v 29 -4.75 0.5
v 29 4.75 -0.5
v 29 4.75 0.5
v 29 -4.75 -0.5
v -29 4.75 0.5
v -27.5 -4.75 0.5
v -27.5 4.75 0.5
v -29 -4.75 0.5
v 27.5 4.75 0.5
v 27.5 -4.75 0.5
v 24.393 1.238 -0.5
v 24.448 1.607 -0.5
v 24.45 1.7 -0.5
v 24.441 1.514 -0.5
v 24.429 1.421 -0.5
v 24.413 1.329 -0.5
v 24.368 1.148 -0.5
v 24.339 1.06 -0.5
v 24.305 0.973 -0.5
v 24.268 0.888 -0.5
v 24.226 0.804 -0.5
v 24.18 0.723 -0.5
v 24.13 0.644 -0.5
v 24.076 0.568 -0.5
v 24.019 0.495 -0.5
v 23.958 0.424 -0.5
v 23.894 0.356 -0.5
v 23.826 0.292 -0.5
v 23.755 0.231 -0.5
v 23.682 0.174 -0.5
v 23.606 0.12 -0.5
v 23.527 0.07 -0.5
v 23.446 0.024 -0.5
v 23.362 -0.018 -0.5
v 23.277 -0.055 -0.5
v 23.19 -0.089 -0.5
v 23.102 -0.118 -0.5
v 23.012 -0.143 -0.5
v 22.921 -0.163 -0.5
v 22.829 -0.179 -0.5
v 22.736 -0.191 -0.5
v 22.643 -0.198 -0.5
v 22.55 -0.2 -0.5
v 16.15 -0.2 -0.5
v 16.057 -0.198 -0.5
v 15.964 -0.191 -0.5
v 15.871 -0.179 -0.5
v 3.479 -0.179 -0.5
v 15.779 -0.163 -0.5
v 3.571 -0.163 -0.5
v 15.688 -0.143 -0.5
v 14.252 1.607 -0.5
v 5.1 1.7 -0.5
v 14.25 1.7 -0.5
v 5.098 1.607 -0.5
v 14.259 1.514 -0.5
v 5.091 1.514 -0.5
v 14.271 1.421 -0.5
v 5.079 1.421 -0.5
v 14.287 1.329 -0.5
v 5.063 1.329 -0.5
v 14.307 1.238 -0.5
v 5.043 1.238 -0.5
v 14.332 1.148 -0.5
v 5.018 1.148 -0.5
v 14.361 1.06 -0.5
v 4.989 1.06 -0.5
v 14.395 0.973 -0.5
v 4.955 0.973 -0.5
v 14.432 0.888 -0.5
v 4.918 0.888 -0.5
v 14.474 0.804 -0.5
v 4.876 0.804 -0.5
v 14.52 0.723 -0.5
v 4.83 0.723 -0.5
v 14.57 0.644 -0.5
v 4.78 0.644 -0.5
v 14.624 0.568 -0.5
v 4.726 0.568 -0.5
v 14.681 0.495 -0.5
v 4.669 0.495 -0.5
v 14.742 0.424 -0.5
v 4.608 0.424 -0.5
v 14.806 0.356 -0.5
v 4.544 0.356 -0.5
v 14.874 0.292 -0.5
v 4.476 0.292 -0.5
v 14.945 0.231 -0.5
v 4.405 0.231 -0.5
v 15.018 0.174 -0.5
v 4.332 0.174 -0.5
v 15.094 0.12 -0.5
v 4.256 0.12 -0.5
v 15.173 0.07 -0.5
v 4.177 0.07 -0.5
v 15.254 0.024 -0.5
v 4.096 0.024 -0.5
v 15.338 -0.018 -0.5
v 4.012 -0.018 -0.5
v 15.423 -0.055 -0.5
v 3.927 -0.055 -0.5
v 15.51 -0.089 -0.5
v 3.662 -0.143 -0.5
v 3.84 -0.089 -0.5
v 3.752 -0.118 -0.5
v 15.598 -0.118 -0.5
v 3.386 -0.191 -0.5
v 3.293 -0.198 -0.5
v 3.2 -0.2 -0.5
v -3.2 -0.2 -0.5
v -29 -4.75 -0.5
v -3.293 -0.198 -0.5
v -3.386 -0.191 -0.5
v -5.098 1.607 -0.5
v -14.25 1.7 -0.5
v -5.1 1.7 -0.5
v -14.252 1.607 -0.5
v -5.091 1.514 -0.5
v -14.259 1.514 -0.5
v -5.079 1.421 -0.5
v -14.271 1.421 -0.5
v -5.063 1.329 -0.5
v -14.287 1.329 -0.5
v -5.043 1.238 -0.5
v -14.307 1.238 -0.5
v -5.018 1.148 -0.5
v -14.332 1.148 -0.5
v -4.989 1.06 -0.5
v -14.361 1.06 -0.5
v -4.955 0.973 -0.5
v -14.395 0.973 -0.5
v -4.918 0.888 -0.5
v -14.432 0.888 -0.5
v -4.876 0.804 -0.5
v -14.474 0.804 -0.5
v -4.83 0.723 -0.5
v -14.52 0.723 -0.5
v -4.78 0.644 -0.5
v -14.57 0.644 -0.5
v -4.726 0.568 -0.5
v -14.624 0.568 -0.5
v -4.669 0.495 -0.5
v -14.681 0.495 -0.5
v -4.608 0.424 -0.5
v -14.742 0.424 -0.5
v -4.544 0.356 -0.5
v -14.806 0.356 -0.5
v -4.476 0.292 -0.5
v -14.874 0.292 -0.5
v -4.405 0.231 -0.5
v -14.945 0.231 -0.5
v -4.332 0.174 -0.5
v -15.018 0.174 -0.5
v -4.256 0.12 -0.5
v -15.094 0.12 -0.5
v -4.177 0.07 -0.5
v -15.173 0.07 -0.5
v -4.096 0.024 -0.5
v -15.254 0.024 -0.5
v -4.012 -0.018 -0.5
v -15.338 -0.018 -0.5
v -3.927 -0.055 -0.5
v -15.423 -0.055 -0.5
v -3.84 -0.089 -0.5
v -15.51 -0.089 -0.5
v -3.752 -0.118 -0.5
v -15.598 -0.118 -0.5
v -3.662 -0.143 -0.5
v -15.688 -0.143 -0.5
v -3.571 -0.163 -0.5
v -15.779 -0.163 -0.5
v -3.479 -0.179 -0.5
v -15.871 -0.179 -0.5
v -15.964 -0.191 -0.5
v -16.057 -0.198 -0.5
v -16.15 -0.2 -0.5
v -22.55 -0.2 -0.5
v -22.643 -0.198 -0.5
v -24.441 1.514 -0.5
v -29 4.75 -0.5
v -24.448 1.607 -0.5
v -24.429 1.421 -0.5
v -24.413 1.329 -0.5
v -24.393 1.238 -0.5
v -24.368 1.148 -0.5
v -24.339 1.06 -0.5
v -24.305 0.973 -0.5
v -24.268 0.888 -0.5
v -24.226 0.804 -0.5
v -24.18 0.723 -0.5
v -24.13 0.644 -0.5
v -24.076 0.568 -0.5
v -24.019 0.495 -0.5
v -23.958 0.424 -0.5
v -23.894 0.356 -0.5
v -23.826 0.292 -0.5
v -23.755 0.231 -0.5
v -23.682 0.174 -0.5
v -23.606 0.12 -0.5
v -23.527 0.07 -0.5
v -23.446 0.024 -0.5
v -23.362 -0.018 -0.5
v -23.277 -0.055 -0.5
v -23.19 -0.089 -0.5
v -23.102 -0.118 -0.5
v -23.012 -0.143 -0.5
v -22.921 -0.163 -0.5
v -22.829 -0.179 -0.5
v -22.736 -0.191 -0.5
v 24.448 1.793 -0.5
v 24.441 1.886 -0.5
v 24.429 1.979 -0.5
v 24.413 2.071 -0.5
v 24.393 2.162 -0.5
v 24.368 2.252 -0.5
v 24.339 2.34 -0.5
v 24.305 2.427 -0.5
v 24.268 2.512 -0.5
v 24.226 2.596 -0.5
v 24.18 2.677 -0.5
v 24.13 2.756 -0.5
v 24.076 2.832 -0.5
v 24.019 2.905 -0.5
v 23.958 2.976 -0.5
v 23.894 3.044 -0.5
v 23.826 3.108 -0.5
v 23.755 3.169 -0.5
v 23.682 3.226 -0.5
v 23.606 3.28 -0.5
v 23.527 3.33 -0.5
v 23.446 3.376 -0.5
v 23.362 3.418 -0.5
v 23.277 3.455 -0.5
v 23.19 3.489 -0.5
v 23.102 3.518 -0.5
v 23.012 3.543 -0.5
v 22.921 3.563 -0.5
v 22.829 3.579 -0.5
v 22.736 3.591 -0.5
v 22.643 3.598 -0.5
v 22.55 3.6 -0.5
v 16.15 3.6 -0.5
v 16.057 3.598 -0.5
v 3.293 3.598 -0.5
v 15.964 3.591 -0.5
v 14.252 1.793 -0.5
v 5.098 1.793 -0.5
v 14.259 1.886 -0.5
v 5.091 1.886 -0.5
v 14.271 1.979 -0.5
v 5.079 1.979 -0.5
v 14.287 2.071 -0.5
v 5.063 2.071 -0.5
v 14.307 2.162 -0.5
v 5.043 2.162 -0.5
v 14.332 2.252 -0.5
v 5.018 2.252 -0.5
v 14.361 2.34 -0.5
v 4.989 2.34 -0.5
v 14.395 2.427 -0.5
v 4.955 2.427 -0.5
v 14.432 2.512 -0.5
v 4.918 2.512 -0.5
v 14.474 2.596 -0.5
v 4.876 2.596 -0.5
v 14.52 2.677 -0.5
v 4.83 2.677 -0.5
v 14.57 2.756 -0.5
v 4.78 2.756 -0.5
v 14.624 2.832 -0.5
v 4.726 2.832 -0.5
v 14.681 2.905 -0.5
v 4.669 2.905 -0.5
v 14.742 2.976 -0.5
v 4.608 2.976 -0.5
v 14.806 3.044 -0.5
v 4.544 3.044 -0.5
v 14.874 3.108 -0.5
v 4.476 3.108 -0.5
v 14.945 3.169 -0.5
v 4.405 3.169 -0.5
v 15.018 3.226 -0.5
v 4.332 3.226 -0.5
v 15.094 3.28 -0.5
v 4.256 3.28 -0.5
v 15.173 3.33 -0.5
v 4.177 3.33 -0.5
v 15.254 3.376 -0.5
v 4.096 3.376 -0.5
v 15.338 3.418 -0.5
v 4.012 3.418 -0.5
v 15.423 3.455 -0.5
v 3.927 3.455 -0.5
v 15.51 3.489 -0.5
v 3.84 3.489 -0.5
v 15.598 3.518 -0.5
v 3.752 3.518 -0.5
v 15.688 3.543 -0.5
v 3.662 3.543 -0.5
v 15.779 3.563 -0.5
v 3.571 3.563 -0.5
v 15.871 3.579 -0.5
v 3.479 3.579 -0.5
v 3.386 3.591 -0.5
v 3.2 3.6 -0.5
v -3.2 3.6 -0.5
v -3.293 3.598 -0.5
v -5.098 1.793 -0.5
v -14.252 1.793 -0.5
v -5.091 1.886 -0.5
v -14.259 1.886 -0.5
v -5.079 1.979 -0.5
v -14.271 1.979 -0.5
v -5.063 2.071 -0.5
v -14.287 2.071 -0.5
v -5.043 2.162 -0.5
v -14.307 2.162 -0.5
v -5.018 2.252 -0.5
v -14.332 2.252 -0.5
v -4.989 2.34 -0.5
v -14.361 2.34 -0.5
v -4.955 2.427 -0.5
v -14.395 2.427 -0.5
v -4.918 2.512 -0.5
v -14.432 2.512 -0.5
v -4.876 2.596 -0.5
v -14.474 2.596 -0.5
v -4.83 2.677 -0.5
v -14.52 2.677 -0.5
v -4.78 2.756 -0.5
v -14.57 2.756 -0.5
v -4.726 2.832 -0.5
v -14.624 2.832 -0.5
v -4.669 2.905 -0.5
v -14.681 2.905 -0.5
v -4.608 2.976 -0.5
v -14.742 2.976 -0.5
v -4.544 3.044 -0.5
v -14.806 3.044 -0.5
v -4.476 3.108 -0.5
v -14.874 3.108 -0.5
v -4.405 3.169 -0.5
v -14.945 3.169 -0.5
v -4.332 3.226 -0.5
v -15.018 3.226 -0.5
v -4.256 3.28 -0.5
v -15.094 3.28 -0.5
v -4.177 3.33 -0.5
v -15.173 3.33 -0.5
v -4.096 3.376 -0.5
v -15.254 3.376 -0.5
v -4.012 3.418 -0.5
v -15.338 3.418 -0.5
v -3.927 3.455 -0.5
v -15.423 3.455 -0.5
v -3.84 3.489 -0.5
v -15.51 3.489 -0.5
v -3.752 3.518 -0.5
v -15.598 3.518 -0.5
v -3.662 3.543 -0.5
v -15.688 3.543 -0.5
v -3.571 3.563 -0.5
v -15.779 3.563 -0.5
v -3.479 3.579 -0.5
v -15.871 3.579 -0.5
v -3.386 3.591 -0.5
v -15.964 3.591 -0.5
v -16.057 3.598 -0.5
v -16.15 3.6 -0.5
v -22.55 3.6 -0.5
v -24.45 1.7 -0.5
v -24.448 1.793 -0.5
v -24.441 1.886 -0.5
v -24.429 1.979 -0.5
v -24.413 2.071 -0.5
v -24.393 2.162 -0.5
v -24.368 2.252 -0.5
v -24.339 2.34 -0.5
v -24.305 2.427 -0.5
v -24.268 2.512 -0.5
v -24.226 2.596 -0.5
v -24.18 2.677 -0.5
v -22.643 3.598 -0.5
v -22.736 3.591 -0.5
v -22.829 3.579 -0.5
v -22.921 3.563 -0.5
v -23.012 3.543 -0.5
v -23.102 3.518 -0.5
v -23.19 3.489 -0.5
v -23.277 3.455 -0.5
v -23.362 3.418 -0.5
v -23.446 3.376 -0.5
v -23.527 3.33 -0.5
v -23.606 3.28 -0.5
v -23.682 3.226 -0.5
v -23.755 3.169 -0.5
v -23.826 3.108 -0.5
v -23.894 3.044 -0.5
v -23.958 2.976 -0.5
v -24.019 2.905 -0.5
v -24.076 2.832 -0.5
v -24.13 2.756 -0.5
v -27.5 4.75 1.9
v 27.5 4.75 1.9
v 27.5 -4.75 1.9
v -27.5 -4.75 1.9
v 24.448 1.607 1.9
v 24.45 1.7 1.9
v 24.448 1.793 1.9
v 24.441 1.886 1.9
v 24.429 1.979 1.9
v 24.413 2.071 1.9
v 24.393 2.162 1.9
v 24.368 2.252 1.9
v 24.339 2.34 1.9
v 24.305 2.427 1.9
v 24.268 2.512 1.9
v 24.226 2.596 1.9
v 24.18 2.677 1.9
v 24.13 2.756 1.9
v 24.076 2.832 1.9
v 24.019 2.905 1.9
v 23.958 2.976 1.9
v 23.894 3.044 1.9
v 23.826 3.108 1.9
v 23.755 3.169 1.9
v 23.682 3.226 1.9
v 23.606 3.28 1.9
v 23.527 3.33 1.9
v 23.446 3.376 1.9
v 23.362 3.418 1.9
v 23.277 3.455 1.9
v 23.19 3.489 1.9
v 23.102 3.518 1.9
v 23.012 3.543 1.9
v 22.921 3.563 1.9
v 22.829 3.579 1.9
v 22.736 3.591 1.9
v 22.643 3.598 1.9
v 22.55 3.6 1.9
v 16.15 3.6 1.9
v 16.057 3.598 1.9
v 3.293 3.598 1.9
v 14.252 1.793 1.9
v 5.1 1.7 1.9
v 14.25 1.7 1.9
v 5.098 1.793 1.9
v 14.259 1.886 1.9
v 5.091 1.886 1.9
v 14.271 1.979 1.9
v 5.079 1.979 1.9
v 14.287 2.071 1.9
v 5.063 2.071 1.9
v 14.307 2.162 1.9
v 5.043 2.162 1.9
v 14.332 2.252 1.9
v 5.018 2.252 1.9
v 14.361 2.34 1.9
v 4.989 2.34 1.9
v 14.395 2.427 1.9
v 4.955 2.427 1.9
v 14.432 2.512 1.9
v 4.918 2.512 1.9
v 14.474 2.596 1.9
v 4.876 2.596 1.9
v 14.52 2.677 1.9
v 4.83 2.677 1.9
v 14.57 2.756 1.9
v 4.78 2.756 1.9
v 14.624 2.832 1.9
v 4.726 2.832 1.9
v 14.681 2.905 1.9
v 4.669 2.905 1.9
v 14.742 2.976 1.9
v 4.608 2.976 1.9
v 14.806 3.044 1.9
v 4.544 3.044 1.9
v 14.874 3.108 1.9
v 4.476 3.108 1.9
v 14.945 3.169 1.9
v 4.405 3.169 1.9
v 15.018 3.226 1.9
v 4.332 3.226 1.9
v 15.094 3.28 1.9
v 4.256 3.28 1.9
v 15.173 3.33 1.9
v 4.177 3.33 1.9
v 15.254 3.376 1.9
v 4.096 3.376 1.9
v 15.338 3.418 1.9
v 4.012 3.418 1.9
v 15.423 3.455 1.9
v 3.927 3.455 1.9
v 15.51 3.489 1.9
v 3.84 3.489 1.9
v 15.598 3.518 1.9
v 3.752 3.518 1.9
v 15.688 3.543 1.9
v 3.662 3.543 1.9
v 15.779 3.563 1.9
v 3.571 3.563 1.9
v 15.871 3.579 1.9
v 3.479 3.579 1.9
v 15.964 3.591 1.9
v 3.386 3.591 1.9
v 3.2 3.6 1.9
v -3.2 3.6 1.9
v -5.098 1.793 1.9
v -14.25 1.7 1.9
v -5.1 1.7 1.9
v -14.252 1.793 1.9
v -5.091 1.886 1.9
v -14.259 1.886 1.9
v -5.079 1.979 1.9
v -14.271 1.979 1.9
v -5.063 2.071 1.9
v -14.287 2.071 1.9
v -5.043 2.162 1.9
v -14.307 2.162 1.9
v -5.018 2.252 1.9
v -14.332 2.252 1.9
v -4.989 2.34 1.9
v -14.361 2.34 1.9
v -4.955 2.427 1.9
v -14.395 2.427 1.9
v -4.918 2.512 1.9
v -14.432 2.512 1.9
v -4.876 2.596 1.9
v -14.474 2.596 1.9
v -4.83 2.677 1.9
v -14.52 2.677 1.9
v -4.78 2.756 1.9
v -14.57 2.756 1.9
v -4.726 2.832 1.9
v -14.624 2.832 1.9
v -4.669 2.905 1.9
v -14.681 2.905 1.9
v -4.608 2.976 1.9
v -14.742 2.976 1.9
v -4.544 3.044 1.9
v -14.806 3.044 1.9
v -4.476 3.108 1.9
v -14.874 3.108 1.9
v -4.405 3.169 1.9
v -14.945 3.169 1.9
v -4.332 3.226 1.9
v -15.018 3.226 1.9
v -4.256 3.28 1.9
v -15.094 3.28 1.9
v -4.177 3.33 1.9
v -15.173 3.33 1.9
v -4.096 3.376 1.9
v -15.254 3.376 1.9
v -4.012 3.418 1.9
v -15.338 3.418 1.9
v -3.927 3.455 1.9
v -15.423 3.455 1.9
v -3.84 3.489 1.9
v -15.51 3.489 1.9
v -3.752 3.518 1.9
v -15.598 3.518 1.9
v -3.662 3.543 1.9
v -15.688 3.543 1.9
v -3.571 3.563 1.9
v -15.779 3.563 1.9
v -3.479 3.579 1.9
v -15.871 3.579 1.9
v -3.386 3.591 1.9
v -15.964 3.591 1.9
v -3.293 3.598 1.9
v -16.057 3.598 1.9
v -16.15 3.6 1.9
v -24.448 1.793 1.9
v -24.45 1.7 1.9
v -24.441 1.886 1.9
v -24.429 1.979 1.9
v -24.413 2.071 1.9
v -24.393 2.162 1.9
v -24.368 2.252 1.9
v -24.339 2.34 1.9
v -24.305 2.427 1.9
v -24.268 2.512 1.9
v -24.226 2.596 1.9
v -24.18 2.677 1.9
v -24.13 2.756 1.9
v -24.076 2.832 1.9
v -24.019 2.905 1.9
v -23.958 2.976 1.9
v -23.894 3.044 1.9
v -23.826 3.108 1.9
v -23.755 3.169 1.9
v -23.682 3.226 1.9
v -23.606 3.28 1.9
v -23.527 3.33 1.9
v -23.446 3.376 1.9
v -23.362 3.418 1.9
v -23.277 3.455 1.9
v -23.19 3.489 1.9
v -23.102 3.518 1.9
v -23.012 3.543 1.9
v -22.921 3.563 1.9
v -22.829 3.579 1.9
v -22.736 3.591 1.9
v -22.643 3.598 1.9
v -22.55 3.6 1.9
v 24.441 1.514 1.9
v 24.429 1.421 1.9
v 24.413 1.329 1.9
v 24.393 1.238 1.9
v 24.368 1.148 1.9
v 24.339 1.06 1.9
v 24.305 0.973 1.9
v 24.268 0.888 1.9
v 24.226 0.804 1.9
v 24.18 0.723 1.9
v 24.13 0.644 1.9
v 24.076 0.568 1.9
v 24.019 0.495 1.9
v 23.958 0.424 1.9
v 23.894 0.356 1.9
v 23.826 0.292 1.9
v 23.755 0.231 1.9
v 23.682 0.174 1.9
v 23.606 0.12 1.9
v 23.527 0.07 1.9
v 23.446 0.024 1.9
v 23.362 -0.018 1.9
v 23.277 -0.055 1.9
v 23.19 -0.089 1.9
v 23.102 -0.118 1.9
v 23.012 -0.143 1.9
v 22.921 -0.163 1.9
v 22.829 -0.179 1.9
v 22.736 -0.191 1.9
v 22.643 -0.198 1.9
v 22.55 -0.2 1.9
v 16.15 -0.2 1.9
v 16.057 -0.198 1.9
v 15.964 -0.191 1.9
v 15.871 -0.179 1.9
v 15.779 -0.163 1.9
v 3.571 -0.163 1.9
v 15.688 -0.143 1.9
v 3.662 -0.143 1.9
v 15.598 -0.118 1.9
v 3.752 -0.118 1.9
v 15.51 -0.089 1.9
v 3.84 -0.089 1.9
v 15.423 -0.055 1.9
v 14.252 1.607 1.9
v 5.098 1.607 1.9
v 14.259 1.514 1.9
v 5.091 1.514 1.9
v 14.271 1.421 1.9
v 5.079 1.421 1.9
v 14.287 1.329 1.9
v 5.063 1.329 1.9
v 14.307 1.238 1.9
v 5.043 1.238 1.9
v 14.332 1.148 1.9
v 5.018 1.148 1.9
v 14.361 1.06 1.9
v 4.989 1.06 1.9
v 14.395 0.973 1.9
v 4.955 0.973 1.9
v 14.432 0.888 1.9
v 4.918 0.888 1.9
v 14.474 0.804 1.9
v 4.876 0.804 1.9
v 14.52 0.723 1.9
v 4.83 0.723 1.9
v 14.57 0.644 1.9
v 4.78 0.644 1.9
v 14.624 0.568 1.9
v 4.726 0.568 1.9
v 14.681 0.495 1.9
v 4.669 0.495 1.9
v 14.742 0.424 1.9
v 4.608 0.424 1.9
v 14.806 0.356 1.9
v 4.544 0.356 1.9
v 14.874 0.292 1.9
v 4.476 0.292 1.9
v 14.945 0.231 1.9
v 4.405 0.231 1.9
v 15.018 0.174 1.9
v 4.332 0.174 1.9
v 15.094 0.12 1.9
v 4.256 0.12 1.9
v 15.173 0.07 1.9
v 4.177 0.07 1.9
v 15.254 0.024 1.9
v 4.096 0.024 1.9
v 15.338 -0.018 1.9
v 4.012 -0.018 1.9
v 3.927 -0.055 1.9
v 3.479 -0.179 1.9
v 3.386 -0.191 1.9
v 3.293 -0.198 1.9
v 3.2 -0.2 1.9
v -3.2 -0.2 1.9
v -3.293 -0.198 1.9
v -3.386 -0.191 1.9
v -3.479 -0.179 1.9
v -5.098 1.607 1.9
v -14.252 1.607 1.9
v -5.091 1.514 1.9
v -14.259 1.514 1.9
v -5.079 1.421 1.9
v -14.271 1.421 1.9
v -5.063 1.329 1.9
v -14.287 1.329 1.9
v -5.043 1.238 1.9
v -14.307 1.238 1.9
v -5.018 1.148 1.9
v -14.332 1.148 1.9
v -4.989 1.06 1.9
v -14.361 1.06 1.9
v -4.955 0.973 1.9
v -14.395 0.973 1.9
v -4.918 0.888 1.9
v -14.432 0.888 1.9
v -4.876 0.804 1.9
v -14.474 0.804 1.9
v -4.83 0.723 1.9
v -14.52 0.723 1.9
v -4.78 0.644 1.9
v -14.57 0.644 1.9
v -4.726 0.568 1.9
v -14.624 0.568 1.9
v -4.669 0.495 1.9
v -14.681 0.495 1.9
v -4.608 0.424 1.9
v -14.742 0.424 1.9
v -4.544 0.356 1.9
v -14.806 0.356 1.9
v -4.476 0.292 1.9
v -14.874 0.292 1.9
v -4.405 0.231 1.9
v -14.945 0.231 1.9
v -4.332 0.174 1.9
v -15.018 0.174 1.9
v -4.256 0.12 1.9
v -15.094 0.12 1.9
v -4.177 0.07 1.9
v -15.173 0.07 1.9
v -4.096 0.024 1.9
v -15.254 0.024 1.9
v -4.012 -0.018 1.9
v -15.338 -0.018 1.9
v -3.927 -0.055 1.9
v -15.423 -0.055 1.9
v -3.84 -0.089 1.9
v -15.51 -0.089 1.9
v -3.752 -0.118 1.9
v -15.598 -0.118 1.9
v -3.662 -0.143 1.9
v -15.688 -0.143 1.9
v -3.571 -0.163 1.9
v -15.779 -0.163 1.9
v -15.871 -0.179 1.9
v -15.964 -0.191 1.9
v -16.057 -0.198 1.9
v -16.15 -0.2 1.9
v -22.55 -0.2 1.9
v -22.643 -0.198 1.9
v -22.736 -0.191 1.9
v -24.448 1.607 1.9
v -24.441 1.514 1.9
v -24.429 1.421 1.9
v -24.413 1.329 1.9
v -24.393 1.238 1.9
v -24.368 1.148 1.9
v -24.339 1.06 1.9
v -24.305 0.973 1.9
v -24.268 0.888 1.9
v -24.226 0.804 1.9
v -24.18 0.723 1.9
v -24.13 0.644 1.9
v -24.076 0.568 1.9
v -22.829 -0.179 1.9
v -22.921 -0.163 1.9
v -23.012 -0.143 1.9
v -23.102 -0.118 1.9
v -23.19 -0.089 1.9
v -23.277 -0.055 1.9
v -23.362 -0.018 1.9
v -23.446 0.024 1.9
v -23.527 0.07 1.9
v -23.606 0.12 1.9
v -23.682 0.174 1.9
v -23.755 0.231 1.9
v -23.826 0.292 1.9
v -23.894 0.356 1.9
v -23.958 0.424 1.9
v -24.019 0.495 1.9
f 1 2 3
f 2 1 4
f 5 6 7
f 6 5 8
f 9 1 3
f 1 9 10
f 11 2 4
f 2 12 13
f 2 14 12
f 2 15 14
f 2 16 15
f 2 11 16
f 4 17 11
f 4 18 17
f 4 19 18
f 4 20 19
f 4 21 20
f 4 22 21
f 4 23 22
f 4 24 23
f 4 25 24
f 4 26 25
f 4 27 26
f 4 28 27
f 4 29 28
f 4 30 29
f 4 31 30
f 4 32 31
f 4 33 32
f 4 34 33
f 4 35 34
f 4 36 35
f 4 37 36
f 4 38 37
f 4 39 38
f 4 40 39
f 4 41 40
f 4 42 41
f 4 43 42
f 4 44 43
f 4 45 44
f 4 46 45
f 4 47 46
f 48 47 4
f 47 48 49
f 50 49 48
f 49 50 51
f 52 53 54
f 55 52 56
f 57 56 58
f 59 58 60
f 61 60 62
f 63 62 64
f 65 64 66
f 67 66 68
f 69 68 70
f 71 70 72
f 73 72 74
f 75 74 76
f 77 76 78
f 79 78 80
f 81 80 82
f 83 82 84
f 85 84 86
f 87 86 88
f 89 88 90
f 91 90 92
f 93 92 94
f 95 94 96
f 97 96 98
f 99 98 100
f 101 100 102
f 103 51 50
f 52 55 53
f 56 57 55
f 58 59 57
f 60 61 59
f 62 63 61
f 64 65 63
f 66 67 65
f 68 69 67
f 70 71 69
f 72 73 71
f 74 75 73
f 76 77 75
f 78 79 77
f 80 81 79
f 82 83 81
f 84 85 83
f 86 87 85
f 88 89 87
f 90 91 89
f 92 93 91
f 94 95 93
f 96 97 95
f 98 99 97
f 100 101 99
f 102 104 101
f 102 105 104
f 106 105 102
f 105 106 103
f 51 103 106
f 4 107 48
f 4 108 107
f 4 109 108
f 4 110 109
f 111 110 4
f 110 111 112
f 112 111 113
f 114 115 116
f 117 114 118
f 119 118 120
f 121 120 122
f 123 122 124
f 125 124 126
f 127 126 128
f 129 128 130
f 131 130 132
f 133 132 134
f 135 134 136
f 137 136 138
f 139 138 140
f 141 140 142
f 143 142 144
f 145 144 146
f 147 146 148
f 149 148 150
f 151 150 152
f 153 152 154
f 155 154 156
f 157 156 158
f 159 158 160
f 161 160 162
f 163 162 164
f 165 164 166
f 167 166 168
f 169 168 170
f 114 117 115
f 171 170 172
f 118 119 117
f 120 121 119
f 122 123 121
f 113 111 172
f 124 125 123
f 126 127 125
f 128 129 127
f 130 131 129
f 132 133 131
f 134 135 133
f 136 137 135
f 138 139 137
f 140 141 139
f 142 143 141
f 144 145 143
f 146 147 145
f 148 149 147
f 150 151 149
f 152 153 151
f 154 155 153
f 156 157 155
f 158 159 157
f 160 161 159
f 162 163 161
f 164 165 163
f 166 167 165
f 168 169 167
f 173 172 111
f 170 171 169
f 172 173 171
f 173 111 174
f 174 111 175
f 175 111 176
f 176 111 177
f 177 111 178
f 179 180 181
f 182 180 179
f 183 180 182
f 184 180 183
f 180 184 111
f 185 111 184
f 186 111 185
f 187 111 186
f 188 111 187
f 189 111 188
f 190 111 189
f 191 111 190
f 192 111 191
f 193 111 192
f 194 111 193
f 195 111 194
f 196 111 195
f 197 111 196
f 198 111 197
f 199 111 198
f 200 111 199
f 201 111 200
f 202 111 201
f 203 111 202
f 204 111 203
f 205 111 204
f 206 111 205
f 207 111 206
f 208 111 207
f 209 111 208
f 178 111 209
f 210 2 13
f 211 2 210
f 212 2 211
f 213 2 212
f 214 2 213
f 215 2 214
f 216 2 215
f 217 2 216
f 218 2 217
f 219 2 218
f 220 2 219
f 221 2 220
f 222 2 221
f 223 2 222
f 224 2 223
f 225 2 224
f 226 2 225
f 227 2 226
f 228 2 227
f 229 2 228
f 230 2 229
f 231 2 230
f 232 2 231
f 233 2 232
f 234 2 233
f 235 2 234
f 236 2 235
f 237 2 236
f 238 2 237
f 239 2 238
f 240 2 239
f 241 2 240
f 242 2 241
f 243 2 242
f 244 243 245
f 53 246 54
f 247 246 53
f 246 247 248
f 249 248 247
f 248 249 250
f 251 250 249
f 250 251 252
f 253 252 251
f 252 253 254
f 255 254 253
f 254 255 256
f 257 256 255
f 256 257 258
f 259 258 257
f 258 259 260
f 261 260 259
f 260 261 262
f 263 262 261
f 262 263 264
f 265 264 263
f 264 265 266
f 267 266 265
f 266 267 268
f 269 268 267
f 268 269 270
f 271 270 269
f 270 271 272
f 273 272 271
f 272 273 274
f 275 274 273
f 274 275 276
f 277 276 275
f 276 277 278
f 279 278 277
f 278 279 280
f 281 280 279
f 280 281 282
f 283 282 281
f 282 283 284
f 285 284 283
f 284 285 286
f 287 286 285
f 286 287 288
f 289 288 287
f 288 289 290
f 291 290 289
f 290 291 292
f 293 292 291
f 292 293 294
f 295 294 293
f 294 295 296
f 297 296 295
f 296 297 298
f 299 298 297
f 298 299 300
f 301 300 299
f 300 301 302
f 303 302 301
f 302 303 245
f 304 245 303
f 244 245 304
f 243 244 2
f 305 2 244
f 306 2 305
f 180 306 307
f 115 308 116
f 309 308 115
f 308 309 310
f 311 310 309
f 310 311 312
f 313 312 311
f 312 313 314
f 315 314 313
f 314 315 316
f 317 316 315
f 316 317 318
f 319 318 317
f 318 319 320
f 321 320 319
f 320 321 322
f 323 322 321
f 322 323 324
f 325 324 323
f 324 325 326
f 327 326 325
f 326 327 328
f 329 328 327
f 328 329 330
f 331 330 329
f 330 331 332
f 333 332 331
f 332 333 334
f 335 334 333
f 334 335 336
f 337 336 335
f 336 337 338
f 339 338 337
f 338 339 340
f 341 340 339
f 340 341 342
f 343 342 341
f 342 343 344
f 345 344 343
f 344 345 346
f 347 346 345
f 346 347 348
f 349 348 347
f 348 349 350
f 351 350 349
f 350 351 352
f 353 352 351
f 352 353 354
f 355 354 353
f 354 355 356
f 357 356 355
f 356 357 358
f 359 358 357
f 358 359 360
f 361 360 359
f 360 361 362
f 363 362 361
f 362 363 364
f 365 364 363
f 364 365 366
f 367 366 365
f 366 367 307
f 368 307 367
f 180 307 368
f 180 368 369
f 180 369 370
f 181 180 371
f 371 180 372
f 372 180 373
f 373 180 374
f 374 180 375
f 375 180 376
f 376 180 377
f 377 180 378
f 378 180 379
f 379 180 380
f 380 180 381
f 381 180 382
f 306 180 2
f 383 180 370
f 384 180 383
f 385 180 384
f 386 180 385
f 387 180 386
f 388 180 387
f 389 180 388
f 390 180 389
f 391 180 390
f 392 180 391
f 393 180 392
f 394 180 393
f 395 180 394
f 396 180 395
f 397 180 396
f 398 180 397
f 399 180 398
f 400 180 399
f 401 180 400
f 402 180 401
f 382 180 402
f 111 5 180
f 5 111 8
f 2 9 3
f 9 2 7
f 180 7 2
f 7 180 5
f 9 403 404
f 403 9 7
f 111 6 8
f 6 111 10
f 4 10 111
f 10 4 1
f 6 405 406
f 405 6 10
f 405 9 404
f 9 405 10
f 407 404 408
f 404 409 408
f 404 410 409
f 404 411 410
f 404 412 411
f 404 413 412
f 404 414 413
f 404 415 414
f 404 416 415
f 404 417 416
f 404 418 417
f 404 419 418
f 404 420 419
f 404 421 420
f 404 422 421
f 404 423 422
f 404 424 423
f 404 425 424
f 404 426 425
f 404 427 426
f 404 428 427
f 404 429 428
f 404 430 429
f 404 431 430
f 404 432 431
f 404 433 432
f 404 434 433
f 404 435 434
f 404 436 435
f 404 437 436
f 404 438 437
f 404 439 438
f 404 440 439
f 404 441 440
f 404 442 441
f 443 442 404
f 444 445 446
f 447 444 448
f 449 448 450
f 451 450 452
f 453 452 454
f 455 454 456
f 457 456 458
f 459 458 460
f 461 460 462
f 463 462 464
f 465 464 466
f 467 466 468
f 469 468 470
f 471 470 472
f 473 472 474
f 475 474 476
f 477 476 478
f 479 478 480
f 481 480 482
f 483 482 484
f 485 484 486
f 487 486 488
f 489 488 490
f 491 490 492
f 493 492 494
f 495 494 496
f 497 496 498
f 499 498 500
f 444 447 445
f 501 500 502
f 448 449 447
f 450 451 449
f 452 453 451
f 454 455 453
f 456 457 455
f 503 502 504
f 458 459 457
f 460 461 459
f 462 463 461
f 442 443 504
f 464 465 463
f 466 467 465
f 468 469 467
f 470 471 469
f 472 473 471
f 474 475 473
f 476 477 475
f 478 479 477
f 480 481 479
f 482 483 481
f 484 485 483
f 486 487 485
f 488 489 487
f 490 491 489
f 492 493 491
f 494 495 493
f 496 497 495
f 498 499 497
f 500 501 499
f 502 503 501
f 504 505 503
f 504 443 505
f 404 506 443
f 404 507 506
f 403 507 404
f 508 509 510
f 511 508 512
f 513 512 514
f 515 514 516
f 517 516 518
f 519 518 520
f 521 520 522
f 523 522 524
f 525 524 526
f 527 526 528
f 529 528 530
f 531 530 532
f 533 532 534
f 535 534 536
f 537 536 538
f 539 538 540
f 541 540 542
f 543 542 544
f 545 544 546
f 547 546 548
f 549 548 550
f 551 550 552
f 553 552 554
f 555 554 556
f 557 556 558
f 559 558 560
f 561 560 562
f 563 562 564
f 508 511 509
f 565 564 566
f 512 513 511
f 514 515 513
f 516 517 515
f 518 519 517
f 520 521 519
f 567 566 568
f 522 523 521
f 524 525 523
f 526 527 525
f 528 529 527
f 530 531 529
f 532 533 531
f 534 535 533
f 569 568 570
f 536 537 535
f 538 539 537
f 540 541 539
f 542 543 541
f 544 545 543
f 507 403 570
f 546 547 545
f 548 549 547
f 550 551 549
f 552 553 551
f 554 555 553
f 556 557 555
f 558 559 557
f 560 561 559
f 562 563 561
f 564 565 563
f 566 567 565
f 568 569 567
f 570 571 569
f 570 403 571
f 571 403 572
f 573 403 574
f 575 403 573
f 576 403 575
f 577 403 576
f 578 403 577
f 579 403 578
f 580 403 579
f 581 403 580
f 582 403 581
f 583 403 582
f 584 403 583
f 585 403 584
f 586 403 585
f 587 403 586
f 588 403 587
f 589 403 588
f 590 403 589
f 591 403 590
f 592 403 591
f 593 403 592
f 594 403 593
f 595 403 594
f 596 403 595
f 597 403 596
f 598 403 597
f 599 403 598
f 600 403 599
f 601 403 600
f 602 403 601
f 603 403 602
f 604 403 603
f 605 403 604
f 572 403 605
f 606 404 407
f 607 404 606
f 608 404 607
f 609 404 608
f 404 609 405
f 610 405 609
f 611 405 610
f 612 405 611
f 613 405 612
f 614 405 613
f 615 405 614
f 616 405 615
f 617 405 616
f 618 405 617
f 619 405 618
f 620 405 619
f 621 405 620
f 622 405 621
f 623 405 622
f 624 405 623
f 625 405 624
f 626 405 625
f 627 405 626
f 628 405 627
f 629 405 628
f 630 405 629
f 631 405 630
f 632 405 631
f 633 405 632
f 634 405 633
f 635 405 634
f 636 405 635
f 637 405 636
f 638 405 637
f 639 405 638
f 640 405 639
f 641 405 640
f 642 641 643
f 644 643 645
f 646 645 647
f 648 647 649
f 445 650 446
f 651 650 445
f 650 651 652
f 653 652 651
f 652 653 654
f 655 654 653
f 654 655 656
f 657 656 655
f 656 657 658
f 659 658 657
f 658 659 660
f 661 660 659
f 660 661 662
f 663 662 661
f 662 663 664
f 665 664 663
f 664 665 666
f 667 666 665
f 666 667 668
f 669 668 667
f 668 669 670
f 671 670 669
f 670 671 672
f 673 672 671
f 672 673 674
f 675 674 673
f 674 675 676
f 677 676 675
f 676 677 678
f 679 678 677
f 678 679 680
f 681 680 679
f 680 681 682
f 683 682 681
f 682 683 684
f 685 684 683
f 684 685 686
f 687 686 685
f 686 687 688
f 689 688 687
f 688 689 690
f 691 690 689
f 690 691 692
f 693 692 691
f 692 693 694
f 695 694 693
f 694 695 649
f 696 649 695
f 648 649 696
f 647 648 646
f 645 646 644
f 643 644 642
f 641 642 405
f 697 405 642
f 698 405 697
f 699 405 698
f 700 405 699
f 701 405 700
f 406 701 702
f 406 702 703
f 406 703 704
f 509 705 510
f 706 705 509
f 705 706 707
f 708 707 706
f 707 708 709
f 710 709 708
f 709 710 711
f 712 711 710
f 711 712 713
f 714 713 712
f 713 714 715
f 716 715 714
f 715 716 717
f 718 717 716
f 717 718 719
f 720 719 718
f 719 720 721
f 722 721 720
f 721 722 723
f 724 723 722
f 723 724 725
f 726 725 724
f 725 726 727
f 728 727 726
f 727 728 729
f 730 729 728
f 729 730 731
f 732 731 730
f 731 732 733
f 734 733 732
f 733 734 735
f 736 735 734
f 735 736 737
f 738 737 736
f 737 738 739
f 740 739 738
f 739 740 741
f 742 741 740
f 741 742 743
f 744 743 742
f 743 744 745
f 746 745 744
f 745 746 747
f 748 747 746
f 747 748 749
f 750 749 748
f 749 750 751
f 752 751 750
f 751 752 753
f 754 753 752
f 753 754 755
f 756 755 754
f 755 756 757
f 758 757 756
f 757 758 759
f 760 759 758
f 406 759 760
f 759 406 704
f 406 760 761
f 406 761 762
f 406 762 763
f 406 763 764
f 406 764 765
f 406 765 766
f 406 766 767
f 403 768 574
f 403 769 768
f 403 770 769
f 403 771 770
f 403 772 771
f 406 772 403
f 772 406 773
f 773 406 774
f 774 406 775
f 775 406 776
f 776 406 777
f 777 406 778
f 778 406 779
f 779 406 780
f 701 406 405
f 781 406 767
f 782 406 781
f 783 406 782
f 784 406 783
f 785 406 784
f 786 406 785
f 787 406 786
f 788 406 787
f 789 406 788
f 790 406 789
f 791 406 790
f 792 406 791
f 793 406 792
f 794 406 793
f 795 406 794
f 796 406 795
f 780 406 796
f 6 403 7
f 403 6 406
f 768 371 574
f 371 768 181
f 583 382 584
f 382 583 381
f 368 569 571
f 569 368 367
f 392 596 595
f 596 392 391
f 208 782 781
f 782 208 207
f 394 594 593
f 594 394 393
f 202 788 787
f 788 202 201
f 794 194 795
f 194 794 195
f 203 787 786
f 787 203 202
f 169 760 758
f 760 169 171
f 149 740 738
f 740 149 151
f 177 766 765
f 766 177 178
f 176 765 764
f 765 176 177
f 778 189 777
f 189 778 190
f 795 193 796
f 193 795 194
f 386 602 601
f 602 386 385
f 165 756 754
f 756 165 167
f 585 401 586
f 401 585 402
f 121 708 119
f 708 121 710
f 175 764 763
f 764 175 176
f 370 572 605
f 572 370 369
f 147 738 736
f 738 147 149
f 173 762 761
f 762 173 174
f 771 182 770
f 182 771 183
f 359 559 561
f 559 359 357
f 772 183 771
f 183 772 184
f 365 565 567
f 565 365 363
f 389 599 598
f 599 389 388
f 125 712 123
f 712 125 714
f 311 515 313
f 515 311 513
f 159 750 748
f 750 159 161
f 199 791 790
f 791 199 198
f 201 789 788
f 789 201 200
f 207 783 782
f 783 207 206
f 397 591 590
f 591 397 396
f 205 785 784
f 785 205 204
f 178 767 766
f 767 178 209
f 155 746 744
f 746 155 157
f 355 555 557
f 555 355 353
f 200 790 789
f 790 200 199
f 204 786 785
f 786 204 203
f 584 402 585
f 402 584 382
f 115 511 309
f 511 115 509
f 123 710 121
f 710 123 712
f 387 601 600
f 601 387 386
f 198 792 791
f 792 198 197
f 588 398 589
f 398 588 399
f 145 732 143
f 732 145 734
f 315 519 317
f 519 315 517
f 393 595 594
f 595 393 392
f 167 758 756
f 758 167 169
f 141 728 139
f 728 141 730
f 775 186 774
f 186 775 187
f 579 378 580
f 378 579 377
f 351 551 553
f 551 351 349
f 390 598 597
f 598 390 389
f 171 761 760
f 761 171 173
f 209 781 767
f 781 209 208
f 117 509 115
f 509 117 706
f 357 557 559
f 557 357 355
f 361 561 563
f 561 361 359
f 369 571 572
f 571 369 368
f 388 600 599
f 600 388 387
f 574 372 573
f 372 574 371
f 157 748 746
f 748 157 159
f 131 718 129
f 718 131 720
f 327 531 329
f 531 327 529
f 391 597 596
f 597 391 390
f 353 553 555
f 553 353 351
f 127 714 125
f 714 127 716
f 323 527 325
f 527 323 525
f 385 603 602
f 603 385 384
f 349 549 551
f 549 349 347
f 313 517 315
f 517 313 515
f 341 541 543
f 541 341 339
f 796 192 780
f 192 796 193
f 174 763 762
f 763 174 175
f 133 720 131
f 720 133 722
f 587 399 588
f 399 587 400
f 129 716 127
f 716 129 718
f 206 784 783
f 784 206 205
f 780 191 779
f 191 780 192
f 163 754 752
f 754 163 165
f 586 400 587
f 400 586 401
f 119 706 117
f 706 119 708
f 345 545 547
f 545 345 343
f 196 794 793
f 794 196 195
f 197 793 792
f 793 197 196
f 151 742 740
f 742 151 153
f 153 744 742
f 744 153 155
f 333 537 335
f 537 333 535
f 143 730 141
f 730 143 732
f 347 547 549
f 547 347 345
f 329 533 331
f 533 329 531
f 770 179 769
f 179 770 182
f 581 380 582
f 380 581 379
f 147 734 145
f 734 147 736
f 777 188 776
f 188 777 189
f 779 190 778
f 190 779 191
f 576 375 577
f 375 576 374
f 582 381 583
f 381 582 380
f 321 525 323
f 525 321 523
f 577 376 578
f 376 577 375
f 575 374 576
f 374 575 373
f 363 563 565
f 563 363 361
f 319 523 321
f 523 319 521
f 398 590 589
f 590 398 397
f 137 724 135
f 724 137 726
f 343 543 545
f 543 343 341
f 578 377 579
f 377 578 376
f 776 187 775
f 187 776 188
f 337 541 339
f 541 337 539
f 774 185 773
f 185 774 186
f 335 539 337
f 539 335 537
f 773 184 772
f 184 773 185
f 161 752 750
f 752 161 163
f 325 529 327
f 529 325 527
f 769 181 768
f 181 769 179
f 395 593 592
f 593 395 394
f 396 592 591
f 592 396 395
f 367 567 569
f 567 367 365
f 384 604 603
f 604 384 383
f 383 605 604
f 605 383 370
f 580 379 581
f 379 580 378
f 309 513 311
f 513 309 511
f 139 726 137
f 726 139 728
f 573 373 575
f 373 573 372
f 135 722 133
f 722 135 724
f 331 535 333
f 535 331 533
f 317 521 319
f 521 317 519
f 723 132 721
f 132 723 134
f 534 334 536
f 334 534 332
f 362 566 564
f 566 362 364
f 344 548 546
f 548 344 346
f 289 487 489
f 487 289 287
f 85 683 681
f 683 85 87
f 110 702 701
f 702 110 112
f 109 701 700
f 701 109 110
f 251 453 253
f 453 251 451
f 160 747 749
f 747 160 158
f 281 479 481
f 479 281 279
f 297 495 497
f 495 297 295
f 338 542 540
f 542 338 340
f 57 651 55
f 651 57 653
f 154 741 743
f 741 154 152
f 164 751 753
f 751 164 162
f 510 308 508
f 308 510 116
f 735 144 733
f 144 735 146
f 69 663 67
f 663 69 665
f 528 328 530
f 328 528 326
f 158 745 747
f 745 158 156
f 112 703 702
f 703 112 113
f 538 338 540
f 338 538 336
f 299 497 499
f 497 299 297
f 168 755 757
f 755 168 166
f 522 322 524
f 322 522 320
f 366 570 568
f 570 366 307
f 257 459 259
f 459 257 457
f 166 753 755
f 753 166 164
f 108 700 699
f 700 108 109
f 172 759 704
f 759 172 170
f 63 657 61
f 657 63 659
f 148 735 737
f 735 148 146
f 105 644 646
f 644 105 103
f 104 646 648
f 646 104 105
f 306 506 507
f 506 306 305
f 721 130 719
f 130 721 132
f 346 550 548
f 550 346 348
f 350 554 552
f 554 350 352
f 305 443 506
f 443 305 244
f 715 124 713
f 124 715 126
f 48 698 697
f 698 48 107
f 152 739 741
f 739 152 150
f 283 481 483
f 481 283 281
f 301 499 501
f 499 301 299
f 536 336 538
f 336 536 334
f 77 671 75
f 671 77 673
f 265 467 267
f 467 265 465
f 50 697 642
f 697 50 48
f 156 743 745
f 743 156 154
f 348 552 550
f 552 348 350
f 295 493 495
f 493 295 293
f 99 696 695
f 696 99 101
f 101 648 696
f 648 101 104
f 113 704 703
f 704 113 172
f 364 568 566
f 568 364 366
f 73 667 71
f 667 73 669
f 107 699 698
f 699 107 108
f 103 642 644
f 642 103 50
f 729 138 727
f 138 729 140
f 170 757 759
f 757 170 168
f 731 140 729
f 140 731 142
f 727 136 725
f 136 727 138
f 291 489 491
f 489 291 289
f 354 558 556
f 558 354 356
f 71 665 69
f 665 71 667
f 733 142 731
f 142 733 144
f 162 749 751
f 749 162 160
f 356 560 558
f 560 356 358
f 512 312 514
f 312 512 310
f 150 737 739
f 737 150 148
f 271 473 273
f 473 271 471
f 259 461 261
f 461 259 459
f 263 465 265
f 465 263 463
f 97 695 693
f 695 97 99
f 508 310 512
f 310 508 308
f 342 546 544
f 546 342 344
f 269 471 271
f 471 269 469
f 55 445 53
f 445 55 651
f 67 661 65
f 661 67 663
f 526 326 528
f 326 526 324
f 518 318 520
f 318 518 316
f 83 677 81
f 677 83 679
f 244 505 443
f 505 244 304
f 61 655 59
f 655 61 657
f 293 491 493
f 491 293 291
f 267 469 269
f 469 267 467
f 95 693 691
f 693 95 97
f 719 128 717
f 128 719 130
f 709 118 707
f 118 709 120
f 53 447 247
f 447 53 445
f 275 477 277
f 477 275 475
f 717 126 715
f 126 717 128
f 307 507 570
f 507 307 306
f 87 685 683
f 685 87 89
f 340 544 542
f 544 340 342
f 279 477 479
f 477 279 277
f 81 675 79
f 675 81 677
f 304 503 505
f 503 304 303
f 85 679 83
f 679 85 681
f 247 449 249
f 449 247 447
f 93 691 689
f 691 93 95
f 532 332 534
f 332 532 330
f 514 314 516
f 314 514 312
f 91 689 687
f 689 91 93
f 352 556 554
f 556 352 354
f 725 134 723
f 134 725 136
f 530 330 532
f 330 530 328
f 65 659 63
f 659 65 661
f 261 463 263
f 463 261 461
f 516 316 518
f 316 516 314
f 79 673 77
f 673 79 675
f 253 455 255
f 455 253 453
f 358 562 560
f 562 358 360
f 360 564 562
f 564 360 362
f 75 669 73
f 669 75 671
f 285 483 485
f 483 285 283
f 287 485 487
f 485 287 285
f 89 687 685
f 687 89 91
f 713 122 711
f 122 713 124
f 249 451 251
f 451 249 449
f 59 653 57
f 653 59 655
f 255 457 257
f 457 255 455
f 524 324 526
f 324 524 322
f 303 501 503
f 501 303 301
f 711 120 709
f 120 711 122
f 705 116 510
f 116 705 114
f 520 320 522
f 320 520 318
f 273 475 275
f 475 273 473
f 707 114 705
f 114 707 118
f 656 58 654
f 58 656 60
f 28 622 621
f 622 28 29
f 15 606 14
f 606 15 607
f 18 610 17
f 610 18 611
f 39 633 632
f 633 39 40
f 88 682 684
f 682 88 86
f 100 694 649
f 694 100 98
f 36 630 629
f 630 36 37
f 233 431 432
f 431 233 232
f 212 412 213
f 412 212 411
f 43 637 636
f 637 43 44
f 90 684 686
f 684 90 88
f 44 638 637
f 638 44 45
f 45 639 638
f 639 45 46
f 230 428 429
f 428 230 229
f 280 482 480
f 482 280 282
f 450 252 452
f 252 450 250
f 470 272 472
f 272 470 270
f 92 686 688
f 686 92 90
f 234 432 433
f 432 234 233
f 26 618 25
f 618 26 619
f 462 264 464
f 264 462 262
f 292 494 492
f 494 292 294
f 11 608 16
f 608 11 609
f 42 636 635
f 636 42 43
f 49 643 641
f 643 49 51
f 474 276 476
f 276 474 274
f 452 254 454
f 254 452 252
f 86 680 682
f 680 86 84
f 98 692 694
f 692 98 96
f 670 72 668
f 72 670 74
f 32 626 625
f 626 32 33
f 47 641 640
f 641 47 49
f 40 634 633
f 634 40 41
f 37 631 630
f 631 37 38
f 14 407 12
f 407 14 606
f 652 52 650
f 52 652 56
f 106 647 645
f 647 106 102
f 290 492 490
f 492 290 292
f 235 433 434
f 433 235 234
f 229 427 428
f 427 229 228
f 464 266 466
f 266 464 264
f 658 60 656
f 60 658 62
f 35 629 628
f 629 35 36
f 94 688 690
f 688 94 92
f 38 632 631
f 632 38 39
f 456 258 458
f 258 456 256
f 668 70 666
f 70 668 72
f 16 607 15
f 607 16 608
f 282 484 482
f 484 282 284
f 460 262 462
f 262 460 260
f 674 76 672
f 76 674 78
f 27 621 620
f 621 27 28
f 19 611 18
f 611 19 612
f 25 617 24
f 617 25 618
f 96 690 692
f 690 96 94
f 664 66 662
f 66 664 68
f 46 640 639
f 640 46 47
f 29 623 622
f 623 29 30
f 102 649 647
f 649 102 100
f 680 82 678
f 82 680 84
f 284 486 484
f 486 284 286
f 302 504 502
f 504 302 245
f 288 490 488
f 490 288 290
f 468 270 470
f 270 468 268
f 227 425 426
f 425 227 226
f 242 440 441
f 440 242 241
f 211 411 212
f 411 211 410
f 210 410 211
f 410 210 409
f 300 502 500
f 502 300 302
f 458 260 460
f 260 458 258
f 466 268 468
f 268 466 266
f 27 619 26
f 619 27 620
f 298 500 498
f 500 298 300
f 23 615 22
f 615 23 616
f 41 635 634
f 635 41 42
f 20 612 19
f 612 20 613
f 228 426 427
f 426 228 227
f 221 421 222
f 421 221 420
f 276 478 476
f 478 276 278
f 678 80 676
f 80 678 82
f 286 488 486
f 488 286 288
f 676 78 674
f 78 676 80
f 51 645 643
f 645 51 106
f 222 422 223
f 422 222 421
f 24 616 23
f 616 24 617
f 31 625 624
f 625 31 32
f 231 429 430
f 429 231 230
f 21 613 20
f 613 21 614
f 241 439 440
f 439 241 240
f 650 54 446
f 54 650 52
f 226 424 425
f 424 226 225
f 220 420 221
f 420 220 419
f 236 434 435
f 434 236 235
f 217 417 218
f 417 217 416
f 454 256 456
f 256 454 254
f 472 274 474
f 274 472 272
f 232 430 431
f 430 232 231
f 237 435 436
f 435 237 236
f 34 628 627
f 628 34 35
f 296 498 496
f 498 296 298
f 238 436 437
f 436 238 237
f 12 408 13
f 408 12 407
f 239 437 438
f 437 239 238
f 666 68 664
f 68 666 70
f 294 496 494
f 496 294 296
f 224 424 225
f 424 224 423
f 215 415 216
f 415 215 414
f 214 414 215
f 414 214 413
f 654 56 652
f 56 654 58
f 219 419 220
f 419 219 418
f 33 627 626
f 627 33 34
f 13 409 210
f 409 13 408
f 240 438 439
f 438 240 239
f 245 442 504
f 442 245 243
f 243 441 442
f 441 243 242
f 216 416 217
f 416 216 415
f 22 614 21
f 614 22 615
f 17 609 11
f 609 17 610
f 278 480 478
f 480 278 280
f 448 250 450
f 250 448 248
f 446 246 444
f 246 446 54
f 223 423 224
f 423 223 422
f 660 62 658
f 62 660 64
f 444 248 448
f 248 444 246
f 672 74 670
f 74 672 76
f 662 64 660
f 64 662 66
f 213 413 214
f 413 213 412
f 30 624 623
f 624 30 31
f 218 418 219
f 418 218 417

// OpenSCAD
$fn=128;
epsilon=0.01;

module usb() {
  hull() {
    translate([3.2, 0, 0])
      cylinder(r=1.9, h=20, center=true);
    translate([-3.2, 0, 0])
      cylinder(r=1.9, h=20, center=true);
  }
}

module cover() {
  difference() {
    union() {
      cube(size=[58, 9.5, 1], center=true);
      translate([0, 0, 1])
        cube(size=[55, 9.5, 1.8], center=true);
    }
    translate([-19.35, 1.7, 0]) usb();
    translate([0, 1.7, 0]) usb();
    translate([19.35, 1.7, 0]) usb();
  }
}

module print() {
  translate([10, 4, 0.5]) 
    cube(size=[1, 88, 1], center=true);
  translate([-10, 4, 0.5]) 
    cube(size=[1, 88, 1], center=true);
  for (i=[-3:4]) {
    translate([0, i*12, 0.6]) cover();
  }
}

// print();
cover();
